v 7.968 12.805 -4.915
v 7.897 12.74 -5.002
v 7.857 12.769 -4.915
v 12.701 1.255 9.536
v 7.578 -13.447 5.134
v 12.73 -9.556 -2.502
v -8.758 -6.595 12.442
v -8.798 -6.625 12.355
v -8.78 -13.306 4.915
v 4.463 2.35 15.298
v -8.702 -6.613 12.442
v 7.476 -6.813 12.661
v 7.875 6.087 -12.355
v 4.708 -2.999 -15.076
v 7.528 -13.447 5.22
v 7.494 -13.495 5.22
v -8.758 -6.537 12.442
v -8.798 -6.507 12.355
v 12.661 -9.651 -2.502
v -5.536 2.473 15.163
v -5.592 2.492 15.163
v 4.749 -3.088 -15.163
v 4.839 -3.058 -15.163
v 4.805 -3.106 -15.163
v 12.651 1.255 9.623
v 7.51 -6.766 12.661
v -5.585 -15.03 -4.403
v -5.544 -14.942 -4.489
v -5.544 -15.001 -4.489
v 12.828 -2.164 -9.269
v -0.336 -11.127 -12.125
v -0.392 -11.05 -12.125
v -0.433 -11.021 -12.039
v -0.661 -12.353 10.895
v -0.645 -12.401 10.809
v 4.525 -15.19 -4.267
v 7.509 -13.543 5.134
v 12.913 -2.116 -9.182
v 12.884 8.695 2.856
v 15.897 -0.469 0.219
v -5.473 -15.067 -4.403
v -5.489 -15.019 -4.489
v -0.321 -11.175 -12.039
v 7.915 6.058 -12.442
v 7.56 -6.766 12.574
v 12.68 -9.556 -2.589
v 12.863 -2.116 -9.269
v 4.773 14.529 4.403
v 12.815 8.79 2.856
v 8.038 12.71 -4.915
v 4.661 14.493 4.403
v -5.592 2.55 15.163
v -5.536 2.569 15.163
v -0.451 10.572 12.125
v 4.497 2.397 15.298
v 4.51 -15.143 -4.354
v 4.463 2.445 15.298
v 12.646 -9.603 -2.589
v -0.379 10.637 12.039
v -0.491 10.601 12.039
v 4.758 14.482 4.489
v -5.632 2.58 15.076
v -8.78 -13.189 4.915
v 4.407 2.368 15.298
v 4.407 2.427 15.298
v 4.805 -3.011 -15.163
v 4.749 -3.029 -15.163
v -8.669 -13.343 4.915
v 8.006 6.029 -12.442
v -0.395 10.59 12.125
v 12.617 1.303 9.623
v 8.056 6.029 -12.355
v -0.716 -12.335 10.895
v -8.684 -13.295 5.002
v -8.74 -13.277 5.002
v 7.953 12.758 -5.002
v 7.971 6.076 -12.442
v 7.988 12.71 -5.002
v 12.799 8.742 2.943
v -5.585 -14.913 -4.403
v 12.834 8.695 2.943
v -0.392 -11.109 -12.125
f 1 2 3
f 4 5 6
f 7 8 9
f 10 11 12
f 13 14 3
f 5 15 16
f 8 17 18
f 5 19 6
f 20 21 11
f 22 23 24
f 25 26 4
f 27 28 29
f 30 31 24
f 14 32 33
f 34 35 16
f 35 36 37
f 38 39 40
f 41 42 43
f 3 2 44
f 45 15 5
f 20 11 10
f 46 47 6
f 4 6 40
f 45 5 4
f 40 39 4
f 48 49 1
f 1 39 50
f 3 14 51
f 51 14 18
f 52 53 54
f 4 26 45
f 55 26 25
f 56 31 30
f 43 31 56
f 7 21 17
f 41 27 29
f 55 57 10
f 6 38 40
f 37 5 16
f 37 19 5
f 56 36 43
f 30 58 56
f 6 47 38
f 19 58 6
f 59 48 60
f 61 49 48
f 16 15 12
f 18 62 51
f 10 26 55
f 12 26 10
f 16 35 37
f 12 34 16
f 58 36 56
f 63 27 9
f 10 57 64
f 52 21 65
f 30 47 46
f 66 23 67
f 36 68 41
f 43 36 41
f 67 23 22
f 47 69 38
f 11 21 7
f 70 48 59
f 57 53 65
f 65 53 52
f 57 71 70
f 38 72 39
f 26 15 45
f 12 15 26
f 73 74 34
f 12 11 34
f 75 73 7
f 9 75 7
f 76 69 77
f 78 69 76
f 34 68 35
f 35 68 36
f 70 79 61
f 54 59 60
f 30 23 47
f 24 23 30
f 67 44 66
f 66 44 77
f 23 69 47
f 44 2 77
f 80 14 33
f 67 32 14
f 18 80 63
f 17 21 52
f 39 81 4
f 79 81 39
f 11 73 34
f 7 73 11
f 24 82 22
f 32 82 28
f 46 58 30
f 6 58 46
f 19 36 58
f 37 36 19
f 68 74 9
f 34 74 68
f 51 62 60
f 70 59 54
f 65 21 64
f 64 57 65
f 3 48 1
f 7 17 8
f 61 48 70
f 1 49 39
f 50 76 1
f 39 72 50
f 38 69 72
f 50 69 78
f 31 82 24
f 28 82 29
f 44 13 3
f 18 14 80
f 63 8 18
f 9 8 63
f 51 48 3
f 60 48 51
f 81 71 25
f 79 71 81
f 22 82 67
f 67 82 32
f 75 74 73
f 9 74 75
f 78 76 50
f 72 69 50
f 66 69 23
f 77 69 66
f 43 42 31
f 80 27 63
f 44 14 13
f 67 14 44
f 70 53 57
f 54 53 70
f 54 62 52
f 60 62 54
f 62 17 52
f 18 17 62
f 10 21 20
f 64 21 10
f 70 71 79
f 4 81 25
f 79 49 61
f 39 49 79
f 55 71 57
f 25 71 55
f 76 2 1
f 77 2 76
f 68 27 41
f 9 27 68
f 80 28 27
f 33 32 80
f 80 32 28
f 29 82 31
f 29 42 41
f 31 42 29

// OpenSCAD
// Auto-generated OpenSCAD file

    inner_points = 10*[[-0.555121029674517, 0.252097973557222, 1.5076139678747007], [0.4789306739060282, -0.30582094958318945, -1.5076139678747007], [1.2783614762453286, 0.8694628743494993, 0.2856195091084527], [0.7478183893280848, -1.344745490869777, 0.5133766732484469], [0.44471109692947597, 0.23973508482260844, 1.52113719207135], [-0.8717455572000972, -0.6565892775398746, 1.235517682962897], [-0.04101019982741844, 1.0542321918178703, 1.203852958972461], [1.2812764981885028, -0.21163080548135457, -0.9182334498640081], [-0.03518015594107033, -1.1079551678438375, -1.203852958972461], [0.7955552014316083, 0.6028663015139072, -1.235517682962897], [0.7460168066892514, -0.6765928517116128, 1.2573987193505602], [-0.06759815027878918, -1.230551772596204, 1.0808761548714765], [1.2630426584795242, -0.9555523132818186, -0.25021524852414045], [0.44942770151148353, -1.50951123416641, -0.42673781300322433], [1.26012763653635, 0.1255413665490355, 0.9536377104483202], [-0.8699439745612638, -1.324741916698039, 0.49149563686078374], [0.4742140693240208, 1.443425369405829, 0.44026103719987336], [1.5796671860051041, -0.04686506218472162, 0.0218810363876632], [-0.5504044250925096, -1.4971483454317962, -0.44026103719987336], [0.793753618792775, 1.2710189406720718, -0.49149563686078374]];

    outer_points = 10*[[-0.8938608578754866, 0.0, 1.3487204141363005], [0.8938608578754866, 0.0, -1.3487204141363005], [1.174206570281529, 0.7960365198874888, 0.7782022732317085], [0.6635402669135327, -1.408673080510631, 0.439759542453489], [0.06899987944129649, -0.03728566145254908, 1.6161320443692175], [-1.1052066908402325, -0.8333221813400379, 0.8379297711375091], [-0.341090558415444, 0.8333221813400379, 1.344345700255859], [1.515297128696973, -0.03728566145254908, -0.5661434270241504], [0.341090558415444, -0.8333221813400379, -1.344345700255859], [1.1052066908402325, 0.8333221813400379, -0.8379297711375091], [0.4527347085711068, -0.8936516488632841, 1.2706108778413883], [-0.2729648616763203, -1.3856292744399337, 0.7896554228617598], [1.3465955664465934, -0.8936516488632841, -0.07810953629491224], [0.6208959961991664, -1.3856292744399337, -0.5590649912745407], [1.0055050080311494, -0.060329467523246194, 1.2662361639609467], [-0.8944011324978067, -1.3483436129873847, 0.007078435749609924], [0.3419647411176168, 1.3483436129873847, 0.8264766215074579], [1.5579413994113391, -0.060329467523246194, 0.43268110670387905], [-0.3419647411176168, -1.3483436129873847, -0.8264766215074579], [0.8944011324978067, 1.3483436129873847, -0.007078435749609924]];

    // Convex hull for inner set (I)
    module inner_hull() {
        hull() {
            for (p = inner_points) {
                translate(p) sphere(r=0.1);
            }
        }
    }

    // Convex hull for outer set (O) minus inner hull (O \ I)
    module outer_minus_inner() {
        difference() {
            hull() {
                for (p = outer_points) {
                    translate(p) sphere(r=0.1);
                }
            }
            inner_hull(); // Subtract inner hull
        }
    }

    // Convex hull for outer set (O) minus all translated inner hulls
    module outer_minus_AllTranslationInner() {
        difference() {
            hull() {
                for (p = outer_points) {
                    translate(p) sphere(r=0.1);
                }
            }
            hull() {
                translate([0,0,50]) inner_hull();
                translate([0,0,-50]) inner_hull();
            }; // Subtract translated inner hulls
        }
    }

    // Difference between outer_minus_inner and outer_minus_AllTranslationInner
    module outer_minus_inner_diff() {
        difference() {
            // Outer minus inner
            difference() {
                hull() {
                    for (p = outer_points) {
                        translate(p) sphere(r=0.1);
                    }
                }
                inner_hull();
            }

            // Subtract Outer minus AllTranslationInner
            difference() {
                hull() {
                    for (p = outer_points) {
                        translate(p) sphere(r=0.1);
                    }
                }
                hull() {
                    translate([0,0,50]) inner_hull();
                    translate([0,0,-50]) inner_hull();
                };
            }
        }
    }

    // Rendering all with colors applied
    color([1, 0, 0, 0.5]) inner_hull(); // Transparent red
    
